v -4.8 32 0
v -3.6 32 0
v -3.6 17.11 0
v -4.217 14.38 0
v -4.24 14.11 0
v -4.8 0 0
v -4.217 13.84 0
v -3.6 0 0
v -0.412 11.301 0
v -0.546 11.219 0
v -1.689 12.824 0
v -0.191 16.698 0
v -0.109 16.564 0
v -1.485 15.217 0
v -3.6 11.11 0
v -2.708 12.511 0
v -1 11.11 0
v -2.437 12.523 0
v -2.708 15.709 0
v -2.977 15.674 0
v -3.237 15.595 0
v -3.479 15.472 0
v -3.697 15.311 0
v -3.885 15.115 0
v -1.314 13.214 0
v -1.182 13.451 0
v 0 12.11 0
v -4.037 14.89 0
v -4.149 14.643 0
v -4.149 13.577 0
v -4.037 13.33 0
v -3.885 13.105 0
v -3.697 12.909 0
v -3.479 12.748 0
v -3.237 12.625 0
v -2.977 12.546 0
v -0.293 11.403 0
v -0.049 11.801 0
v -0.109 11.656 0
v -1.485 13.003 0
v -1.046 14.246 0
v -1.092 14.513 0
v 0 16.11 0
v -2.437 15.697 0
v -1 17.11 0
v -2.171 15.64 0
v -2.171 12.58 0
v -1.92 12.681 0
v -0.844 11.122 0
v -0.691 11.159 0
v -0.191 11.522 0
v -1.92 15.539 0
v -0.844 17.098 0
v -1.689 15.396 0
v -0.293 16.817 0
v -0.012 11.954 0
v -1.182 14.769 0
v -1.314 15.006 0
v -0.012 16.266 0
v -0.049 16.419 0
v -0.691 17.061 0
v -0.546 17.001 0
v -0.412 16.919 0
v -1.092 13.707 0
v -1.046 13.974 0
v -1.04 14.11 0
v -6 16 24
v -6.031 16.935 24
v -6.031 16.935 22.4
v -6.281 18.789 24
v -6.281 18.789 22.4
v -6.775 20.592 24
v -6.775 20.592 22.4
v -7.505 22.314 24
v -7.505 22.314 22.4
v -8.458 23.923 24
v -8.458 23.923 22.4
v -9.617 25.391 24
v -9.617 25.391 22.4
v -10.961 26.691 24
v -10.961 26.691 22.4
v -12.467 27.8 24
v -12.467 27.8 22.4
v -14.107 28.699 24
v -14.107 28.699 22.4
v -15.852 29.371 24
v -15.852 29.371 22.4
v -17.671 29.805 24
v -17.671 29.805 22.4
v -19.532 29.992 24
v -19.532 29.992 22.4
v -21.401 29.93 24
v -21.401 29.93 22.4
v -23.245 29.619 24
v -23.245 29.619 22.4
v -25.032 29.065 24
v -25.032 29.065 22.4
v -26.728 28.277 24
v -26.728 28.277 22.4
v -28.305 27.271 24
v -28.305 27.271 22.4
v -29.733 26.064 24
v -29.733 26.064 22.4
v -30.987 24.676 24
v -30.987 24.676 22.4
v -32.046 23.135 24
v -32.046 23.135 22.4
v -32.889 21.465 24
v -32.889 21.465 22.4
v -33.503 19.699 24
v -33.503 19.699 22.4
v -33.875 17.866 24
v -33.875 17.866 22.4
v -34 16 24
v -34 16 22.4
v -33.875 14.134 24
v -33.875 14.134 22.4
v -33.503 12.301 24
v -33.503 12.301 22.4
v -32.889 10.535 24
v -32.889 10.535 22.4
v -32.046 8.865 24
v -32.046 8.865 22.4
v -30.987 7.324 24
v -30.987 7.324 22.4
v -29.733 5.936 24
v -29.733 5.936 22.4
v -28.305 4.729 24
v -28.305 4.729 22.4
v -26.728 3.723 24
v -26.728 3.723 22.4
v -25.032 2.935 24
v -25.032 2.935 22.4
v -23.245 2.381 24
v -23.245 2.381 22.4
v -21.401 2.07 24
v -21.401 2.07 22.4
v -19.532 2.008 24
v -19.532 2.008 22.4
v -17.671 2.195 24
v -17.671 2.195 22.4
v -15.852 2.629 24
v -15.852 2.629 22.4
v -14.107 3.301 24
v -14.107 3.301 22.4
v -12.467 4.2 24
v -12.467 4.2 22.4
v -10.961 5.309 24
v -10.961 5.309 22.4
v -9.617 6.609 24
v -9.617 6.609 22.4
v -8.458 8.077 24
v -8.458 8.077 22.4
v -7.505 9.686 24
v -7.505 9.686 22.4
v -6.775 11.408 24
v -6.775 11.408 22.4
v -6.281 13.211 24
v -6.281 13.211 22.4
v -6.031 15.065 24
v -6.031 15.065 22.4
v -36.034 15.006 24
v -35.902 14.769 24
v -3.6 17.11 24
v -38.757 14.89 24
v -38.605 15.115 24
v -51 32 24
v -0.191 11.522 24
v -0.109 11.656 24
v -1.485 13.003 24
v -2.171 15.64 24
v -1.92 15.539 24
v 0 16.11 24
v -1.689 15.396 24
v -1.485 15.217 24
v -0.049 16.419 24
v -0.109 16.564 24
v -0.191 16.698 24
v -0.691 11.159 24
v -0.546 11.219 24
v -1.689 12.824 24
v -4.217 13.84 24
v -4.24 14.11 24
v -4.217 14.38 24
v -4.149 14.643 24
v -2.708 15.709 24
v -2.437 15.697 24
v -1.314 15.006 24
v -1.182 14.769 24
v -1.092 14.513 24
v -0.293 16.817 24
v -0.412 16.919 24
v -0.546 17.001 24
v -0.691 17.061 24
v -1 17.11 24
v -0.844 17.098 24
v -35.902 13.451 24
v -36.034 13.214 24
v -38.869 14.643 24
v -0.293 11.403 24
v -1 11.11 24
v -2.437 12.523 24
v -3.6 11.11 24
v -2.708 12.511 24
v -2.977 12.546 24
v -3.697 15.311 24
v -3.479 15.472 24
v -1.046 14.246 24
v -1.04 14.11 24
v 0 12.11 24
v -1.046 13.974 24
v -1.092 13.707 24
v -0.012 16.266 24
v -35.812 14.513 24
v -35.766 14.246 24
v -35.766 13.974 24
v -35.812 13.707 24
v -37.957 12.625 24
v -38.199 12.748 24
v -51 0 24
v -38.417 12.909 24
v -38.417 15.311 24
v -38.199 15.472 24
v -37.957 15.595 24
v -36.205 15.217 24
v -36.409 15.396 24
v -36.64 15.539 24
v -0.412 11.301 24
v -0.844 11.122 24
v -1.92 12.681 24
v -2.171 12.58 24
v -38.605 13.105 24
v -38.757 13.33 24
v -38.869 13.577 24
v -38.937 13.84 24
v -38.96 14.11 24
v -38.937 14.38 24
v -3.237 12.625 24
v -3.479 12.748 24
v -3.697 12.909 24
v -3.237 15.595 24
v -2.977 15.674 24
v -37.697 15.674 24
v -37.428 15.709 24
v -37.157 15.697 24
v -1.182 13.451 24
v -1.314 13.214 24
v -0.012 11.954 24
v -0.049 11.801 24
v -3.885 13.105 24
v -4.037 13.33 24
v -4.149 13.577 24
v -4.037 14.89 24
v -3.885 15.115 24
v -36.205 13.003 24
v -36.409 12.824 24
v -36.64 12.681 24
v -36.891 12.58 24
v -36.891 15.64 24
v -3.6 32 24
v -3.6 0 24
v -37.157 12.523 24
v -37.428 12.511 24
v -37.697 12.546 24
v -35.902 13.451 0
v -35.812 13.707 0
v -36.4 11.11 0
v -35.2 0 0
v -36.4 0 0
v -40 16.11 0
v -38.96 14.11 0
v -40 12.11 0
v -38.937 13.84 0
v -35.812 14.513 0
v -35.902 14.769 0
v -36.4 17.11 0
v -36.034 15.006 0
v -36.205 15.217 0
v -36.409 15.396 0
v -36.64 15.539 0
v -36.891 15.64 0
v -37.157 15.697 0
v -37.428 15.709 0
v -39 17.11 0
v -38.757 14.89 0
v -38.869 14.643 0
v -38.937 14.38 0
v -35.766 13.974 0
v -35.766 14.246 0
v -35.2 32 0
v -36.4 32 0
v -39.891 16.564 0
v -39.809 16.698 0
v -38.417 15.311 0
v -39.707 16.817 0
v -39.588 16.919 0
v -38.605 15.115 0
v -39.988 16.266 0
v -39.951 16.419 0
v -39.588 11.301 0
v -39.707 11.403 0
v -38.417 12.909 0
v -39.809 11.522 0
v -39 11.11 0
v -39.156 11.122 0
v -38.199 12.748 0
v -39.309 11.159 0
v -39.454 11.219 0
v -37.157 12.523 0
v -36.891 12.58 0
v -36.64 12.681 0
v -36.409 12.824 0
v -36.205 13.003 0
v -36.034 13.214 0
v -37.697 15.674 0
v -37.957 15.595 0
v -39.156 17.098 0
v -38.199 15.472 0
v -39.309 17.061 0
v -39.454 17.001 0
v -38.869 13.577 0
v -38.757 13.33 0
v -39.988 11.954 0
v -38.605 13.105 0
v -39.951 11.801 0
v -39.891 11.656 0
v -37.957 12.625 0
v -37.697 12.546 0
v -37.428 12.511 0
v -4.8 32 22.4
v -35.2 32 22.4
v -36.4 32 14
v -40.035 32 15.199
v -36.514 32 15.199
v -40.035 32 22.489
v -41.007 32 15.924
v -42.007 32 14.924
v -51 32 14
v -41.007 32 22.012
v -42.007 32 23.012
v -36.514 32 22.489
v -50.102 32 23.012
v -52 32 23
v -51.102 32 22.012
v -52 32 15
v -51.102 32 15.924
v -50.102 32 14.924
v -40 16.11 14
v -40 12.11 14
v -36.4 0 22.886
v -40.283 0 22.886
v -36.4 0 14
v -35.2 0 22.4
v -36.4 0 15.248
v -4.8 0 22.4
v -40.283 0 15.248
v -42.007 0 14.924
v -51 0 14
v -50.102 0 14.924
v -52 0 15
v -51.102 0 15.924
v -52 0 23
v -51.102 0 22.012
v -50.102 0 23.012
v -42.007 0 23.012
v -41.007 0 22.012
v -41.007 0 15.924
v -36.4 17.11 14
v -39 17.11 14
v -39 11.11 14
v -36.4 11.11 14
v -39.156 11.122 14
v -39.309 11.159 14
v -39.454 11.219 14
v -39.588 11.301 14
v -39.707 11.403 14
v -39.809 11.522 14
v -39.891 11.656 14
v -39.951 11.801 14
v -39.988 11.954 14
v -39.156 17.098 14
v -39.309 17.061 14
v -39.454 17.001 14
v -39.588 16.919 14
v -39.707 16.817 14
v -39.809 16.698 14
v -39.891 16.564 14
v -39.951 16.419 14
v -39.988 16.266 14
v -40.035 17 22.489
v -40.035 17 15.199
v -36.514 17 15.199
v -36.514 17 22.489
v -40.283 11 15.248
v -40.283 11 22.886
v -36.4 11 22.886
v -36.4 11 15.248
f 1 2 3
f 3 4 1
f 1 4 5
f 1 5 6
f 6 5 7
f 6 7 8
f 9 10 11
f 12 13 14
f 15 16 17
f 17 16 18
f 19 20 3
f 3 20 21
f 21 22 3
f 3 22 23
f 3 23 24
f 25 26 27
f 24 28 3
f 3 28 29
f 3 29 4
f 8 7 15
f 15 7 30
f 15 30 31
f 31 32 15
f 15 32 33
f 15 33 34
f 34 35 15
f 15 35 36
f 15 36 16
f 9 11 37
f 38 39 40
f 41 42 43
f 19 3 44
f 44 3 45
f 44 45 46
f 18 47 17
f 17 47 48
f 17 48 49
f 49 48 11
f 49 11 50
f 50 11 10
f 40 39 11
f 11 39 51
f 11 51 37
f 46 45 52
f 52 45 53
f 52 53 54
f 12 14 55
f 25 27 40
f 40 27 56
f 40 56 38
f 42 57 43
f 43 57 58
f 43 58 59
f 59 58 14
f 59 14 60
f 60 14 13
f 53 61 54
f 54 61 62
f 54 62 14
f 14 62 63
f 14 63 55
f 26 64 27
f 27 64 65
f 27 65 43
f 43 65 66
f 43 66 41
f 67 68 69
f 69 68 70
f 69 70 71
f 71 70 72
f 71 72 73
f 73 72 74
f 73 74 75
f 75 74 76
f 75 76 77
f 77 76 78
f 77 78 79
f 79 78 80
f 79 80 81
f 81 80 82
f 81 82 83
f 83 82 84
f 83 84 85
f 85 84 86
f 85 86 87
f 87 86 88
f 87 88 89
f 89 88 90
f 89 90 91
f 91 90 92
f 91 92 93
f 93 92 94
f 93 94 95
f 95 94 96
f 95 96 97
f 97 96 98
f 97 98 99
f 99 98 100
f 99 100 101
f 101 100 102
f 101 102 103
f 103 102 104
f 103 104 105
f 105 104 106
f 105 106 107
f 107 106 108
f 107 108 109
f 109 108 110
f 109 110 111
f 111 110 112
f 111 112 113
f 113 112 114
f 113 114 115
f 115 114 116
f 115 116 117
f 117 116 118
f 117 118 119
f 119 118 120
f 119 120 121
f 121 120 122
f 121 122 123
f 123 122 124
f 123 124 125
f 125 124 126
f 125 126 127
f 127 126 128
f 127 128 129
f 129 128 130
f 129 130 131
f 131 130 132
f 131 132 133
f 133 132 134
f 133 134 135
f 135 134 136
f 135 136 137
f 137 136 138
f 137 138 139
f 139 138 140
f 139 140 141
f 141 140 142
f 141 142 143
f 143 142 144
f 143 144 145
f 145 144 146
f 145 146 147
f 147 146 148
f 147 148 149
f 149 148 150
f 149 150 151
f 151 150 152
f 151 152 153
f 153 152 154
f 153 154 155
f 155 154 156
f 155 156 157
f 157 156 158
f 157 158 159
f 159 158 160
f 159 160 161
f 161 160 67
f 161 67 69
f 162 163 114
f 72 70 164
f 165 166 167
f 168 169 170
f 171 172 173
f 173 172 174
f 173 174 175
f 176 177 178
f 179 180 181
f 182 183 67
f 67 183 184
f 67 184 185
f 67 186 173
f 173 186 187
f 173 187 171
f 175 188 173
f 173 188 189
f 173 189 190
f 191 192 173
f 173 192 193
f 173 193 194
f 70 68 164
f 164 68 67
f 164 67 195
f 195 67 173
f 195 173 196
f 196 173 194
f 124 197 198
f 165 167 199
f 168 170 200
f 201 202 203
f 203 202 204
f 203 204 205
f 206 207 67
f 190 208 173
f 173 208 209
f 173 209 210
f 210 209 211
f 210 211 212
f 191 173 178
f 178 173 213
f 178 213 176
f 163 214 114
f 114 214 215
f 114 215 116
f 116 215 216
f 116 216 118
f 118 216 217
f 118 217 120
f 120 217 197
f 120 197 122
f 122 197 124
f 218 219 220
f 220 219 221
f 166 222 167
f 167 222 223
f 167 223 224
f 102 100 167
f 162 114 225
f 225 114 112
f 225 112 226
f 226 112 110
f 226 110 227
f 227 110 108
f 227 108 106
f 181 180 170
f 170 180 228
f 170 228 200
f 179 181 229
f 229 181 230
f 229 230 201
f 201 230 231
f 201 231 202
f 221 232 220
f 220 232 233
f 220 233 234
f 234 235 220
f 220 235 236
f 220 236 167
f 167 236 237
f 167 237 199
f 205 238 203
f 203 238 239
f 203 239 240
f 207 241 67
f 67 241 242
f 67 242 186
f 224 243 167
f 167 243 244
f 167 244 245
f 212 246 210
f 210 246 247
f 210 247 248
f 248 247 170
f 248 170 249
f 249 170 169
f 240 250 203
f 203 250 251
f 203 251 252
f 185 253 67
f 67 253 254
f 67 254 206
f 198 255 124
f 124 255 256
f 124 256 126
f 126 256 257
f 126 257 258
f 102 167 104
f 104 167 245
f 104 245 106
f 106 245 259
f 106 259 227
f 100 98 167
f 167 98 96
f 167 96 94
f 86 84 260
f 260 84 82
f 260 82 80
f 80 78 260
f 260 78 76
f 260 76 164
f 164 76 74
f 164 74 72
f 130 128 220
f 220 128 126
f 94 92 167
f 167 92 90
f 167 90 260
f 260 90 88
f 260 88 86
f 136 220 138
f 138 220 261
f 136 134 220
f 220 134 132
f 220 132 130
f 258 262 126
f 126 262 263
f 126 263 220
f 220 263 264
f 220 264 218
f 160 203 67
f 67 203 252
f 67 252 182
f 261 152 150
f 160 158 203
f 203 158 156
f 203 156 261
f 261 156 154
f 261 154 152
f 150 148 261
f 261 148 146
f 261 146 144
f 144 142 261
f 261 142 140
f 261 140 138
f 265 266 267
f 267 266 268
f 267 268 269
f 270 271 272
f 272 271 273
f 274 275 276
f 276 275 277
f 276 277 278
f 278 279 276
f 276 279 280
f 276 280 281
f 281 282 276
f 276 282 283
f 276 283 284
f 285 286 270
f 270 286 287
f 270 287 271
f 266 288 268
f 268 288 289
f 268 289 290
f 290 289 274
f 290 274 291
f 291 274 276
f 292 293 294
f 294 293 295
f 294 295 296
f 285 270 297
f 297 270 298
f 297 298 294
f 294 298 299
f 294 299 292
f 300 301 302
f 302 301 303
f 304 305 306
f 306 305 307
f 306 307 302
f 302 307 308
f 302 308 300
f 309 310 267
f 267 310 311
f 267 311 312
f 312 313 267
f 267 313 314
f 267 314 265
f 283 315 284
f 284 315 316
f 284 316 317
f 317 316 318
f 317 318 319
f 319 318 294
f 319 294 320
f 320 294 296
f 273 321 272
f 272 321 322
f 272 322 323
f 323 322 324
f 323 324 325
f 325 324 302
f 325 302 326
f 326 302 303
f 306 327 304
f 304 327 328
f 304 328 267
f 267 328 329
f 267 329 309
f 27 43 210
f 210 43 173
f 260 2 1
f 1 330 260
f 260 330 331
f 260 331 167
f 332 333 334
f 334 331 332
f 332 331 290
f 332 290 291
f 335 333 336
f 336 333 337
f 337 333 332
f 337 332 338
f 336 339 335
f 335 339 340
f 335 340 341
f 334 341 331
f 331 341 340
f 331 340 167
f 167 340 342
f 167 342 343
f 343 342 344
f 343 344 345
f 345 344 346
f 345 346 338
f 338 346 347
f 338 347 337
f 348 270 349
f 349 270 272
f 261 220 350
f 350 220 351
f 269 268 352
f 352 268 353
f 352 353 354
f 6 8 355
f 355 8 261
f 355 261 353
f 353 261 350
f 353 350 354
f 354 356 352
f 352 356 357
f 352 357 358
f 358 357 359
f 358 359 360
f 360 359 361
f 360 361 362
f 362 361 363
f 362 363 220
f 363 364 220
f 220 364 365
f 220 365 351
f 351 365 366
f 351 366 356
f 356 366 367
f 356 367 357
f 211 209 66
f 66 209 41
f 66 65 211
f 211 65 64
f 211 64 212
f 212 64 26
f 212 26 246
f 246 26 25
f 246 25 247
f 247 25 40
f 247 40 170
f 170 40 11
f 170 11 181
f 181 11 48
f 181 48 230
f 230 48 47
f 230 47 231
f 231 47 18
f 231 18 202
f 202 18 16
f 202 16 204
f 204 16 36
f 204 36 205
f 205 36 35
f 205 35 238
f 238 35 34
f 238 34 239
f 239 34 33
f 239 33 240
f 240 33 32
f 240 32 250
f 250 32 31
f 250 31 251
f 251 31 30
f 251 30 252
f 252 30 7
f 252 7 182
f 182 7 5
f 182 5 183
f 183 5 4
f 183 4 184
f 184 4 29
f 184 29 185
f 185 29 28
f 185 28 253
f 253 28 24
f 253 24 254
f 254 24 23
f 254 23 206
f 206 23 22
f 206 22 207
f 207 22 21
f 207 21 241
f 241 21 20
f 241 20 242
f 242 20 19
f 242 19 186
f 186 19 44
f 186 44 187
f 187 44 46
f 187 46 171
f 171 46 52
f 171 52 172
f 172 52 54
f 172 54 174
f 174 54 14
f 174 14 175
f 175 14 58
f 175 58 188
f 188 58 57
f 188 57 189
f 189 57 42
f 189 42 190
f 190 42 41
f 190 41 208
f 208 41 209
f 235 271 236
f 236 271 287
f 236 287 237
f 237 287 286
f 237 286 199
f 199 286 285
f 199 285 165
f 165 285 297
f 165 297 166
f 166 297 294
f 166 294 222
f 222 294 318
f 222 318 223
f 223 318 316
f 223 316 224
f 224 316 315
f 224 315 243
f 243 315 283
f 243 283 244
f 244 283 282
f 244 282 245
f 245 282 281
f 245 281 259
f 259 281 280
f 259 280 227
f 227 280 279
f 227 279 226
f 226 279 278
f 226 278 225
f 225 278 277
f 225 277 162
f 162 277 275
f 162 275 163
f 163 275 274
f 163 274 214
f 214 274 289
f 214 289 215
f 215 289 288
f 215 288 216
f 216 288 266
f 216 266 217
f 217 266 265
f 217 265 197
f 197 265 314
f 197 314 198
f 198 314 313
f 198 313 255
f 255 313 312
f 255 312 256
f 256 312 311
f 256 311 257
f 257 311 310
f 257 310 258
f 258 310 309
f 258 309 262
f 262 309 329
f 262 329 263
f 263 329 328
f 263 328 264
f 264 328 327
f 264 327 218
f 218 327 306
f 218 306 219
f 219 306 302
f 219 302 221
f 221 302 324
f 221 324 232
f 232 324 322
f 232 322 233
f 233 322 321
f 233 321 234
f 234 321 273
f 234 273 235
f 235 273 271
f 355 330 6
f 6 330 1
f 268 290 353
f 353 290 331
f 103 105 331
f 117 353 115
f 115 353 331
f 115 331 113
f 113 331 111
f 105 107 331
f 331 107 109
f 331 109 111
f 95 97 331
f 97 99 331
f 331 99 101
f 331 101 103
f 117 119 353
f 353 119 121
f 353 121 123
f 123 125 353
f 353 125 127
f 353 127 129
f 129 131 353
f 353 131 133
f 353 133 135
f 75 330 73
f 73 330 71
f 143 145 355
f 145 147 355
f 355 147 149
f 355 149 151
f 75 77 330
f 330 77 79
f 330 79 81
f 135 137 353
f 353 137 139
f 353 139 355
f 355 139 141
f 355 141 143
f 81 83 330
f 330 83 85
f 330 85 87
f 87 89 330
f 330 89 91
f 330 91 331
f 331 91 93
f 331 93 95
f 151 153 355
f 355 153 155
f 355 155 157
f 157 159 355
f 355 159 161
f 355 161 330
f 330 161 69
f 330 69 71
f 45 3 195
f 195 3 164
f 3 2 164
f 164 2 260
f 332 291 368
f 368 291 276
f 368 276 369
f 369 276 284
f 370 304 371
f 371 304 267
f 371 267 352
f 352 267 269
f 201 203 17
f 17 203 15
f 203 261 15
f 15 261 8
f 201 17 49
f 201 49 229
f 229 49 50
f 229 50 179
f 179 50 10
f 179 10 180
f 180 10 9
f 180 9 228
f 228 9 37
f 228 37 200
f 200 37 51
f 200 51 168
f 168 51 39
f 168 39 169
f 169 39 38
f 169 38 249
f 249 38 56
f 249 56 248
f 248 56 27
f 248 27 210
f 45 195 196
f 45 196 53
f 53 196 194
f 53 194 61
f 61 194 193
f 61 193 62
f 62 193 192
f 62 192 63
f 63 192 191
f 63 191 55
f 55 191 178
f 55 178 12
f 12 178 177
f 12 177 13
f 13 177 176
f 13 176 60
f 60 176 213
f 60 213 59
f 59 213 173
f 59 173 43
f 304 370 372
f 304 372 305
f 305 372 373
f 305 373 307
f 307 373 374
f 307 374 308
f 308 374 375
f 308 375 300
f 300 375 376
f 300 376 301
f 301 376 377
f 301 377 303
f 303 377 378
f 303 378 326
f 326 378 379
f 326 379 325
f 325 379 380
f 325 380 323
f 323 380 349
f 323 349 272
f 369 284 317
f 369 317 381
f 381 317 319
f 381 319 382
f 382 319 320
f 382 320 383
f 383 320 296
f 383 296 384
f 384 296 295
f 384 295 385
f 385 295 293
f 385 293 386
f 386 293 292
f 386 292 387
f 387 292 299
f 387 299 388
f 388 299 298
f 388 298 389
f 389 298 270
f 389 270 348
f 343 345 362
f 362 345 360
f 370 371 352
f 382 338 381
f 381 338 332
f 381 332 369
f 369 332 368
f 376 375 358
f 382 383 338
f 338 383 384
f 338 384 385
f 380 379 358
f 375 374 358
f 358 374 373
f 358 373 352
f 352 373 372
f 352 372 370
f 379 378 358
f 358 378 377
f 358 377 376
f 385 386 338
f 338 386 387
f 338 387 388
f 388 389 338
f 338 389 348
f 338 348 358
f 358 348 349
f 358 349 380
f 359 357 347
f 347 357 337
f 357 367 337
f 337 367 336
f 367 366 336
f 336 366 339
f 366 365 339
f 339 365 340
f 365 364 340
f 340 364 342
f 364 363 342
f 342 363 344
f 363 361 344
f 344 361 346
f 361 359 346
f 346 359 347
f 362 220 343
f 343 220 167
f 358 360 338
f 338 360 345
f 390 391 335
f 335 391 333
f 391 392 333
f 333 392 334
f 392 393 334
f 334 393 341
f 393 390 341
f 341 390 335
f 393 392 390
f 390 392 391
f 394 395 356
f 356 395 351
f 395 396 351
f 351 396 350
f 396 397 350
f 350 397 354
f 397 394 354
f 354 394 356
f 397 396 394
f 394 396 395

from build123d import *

# Parameters (mm, degrees)
SKETCH_1_W          = 40
SKETCH_1_H          = 32
SKETCH_1_R          = 14
SKETCH_1_R_2        = 1.6
EXTRUDE_1_DEPTH     = 24
SKETCH_3_W          = 30.4
SKETCH_3_H          = 51.000805287
CUT_EXTRUDE_2_DEPTH = 22.4
SKETCH_4_W          = 6.12991639
SKETCH_4_H          = 19.114193836
CUT_EXTRUDE_3_DEPTH = 57.568542495
FILLET_1_R          = 1
SKETCH_6_W          = 15.6
SKETCH_6_H          = 32
EXTRUDE_3_DEPTH     = 10
SKETCH_8_R          = 1.6
CUT_EXTRUDE_4_DEPTH = 66.604877867
CUT_EXTRUDE_5_DEPTH = 66.604877867
CHAMFER_1_SIZE      = 1
SKETCH_10_W         = 3.521220791
SKETCH_10_H         = 7.290414878
CUT_EXTRUDE_6_DEPTH = 15
SKETCH_11_W         = 3.883261803
SKETCH_11_H         = 7.637577492
CUT_EXTRUDE_7_DEPTH = 11


with BuildPart() as part:
    # 草图1 → 凸台-拉伸1 (new body)
    with BuildSketch(Plane.XY):
        with Locations((-20, 16)):
            Rectangle(SKETCH_1_W, SKETCH_1_H)
        with Locations((-20, 16)):
            Circle(SKETCH_1_R, mode=Mode.SUBTRACT)
        with Locations((-2.64, 14.11)):
            Circle(SKETCH_1_R_2, mode=Mode.SUBTRACT)
        with Locations(Location((-37.36, 14.11, 0), (0, 0, 180))):
            Circle(SKETCH_1_R_2, mode=Mode.SUBTRACT)
    extrude(amount=EXTRUDE_1_DEPTH)

    # 草图3 → 切除-拉伸2 (cut)
    with BuildSketch(Plane(origin=(0, 0, 0), x_dir=(-1, 0, 0), z_dir=(0, 0, -1))):
        with Locations((20, 12.05288799)):
            Rectangle(SKETCH_3_W, SKETCH_3_H)
    extrude(amount=-CUT_EXTRUDE_2_DEPTH, mode=Mode.SUBTRACT)

    # 草图4 → 切除-拉伸3 (cut, through all)
    with BuildSketch(Plane(origin=(0, 0, 0), x_dir=(-1, 0, 0), z_dir=(0, 0, -1))):
        with Locations((0.535041805, 26.667096918)):
            Rectangle(SKETCH_4_W, SKETCH_4_H)
        with Locations((39.464958195, 26.667096918)):
            Rectangle(SKETCH_4_W, SKETCH_4_H)
        with Locations((39.464958195, 1.552903082)):
            Rectangle(SKETCH_4_W, SKETCH_4_H)
        with Locations((0.535041805, 1.552903082)):
            Rectangle(SKETCH_4_W, SKETCH_4_H)
    extrude(amount=-CUT_EXTRUDE_3_DEPTH, mode=Mode.SUBTRACT)

    # 圆角1
    fillet_1_edges = [part.edges().sort_by_distance(p)[0] for p in [
        (0, 11.11, 12),
        (0, 17.11, 12),
        (-40, 17.11, 12),
        (-40, 11.11, 12),
    ]]
    fillet(fillet_1_edges, radius=FILLET_1_R)

    # 草图6 → 凸台-拉伸3 (add)
    with BuildSketch(Plane.XY.offset(24)):
        with Locations((-44.2, 16)):
            Rectangle(SKETCH_6_W, SKETCH_6_H)
    extrude(amount=-EXTRUDE_3_DEPTH)

    # 草图8 → 切除-拉伸4 (cut, through all)
    with BuildSketch(Plane.XY.offset(24)):
        with Locations(Location((-37.36, 14.11, 0), (0, 0, 180))):
            Circle(SKETCH_8_R)
    extrude(amount=-CUT_EXTRUDE_4_DEPTH, mode=Mode.SUBTRACT)

    # 草图9 → 切除-拉伸5 (cut, through all)
    with BuildSketch(Plane(origin=(0, 32, 0), x_dir=(1, 0, 0), z_dir=(0, 1, 0))):
        Polygon((-51.102484963, -15.923925167), (-50.102484963, -14.923925167), (-42.006912692, -14.923925167), (-41.006912692, -15.923925167), (-41.006912692, -22.012190671), (-42.006912692, -23.012190671), (-50.102484963, -23.012190671), (-51.102484963, -22.012190671), align=None)
    extrude(amount=-CUT_EXTRUDE_5_DEPTH, mode=Mode.SUBTRACT)

    # 倒角1
    chamfer_1_edges = [part.edges().sort_by_distance(p)[0] for p in [
        (-52, 16, 24),
        (-52, 16, 14),
    ]]
    chamfer(chamfer_1_edges, length=CHAMFER_1_SIZE)

    # 草图10 → 切除-拉伸6 (cut)
    with BuildSketch(Plane(origin=(0, 32, 0), x_dir=(1, 0, 0), z_dir=(0, 1, 0))):
        with Locations((-38.274678112, -18.844062947)):
            Rectangle(SKETCH_10_W, SKETCH_10_H)
    extrude(amount=-CUT_EXTRUDE_6_DEPTH, mode=Mode.SUBTRACT)

    # 草图11 → 切除-拉伸7 (cut)
    with BuildSketch(Plane.XZ):
        with Locations((-38.341630902, 19.067238913)):
            Rectangle(SKETCH_11_W, SKETCH_11_H)
    extrude(amount=-CUT_EXTRUDE_7_DEPTH, mode=Mode.SUBTRACT)


solid = part.part
